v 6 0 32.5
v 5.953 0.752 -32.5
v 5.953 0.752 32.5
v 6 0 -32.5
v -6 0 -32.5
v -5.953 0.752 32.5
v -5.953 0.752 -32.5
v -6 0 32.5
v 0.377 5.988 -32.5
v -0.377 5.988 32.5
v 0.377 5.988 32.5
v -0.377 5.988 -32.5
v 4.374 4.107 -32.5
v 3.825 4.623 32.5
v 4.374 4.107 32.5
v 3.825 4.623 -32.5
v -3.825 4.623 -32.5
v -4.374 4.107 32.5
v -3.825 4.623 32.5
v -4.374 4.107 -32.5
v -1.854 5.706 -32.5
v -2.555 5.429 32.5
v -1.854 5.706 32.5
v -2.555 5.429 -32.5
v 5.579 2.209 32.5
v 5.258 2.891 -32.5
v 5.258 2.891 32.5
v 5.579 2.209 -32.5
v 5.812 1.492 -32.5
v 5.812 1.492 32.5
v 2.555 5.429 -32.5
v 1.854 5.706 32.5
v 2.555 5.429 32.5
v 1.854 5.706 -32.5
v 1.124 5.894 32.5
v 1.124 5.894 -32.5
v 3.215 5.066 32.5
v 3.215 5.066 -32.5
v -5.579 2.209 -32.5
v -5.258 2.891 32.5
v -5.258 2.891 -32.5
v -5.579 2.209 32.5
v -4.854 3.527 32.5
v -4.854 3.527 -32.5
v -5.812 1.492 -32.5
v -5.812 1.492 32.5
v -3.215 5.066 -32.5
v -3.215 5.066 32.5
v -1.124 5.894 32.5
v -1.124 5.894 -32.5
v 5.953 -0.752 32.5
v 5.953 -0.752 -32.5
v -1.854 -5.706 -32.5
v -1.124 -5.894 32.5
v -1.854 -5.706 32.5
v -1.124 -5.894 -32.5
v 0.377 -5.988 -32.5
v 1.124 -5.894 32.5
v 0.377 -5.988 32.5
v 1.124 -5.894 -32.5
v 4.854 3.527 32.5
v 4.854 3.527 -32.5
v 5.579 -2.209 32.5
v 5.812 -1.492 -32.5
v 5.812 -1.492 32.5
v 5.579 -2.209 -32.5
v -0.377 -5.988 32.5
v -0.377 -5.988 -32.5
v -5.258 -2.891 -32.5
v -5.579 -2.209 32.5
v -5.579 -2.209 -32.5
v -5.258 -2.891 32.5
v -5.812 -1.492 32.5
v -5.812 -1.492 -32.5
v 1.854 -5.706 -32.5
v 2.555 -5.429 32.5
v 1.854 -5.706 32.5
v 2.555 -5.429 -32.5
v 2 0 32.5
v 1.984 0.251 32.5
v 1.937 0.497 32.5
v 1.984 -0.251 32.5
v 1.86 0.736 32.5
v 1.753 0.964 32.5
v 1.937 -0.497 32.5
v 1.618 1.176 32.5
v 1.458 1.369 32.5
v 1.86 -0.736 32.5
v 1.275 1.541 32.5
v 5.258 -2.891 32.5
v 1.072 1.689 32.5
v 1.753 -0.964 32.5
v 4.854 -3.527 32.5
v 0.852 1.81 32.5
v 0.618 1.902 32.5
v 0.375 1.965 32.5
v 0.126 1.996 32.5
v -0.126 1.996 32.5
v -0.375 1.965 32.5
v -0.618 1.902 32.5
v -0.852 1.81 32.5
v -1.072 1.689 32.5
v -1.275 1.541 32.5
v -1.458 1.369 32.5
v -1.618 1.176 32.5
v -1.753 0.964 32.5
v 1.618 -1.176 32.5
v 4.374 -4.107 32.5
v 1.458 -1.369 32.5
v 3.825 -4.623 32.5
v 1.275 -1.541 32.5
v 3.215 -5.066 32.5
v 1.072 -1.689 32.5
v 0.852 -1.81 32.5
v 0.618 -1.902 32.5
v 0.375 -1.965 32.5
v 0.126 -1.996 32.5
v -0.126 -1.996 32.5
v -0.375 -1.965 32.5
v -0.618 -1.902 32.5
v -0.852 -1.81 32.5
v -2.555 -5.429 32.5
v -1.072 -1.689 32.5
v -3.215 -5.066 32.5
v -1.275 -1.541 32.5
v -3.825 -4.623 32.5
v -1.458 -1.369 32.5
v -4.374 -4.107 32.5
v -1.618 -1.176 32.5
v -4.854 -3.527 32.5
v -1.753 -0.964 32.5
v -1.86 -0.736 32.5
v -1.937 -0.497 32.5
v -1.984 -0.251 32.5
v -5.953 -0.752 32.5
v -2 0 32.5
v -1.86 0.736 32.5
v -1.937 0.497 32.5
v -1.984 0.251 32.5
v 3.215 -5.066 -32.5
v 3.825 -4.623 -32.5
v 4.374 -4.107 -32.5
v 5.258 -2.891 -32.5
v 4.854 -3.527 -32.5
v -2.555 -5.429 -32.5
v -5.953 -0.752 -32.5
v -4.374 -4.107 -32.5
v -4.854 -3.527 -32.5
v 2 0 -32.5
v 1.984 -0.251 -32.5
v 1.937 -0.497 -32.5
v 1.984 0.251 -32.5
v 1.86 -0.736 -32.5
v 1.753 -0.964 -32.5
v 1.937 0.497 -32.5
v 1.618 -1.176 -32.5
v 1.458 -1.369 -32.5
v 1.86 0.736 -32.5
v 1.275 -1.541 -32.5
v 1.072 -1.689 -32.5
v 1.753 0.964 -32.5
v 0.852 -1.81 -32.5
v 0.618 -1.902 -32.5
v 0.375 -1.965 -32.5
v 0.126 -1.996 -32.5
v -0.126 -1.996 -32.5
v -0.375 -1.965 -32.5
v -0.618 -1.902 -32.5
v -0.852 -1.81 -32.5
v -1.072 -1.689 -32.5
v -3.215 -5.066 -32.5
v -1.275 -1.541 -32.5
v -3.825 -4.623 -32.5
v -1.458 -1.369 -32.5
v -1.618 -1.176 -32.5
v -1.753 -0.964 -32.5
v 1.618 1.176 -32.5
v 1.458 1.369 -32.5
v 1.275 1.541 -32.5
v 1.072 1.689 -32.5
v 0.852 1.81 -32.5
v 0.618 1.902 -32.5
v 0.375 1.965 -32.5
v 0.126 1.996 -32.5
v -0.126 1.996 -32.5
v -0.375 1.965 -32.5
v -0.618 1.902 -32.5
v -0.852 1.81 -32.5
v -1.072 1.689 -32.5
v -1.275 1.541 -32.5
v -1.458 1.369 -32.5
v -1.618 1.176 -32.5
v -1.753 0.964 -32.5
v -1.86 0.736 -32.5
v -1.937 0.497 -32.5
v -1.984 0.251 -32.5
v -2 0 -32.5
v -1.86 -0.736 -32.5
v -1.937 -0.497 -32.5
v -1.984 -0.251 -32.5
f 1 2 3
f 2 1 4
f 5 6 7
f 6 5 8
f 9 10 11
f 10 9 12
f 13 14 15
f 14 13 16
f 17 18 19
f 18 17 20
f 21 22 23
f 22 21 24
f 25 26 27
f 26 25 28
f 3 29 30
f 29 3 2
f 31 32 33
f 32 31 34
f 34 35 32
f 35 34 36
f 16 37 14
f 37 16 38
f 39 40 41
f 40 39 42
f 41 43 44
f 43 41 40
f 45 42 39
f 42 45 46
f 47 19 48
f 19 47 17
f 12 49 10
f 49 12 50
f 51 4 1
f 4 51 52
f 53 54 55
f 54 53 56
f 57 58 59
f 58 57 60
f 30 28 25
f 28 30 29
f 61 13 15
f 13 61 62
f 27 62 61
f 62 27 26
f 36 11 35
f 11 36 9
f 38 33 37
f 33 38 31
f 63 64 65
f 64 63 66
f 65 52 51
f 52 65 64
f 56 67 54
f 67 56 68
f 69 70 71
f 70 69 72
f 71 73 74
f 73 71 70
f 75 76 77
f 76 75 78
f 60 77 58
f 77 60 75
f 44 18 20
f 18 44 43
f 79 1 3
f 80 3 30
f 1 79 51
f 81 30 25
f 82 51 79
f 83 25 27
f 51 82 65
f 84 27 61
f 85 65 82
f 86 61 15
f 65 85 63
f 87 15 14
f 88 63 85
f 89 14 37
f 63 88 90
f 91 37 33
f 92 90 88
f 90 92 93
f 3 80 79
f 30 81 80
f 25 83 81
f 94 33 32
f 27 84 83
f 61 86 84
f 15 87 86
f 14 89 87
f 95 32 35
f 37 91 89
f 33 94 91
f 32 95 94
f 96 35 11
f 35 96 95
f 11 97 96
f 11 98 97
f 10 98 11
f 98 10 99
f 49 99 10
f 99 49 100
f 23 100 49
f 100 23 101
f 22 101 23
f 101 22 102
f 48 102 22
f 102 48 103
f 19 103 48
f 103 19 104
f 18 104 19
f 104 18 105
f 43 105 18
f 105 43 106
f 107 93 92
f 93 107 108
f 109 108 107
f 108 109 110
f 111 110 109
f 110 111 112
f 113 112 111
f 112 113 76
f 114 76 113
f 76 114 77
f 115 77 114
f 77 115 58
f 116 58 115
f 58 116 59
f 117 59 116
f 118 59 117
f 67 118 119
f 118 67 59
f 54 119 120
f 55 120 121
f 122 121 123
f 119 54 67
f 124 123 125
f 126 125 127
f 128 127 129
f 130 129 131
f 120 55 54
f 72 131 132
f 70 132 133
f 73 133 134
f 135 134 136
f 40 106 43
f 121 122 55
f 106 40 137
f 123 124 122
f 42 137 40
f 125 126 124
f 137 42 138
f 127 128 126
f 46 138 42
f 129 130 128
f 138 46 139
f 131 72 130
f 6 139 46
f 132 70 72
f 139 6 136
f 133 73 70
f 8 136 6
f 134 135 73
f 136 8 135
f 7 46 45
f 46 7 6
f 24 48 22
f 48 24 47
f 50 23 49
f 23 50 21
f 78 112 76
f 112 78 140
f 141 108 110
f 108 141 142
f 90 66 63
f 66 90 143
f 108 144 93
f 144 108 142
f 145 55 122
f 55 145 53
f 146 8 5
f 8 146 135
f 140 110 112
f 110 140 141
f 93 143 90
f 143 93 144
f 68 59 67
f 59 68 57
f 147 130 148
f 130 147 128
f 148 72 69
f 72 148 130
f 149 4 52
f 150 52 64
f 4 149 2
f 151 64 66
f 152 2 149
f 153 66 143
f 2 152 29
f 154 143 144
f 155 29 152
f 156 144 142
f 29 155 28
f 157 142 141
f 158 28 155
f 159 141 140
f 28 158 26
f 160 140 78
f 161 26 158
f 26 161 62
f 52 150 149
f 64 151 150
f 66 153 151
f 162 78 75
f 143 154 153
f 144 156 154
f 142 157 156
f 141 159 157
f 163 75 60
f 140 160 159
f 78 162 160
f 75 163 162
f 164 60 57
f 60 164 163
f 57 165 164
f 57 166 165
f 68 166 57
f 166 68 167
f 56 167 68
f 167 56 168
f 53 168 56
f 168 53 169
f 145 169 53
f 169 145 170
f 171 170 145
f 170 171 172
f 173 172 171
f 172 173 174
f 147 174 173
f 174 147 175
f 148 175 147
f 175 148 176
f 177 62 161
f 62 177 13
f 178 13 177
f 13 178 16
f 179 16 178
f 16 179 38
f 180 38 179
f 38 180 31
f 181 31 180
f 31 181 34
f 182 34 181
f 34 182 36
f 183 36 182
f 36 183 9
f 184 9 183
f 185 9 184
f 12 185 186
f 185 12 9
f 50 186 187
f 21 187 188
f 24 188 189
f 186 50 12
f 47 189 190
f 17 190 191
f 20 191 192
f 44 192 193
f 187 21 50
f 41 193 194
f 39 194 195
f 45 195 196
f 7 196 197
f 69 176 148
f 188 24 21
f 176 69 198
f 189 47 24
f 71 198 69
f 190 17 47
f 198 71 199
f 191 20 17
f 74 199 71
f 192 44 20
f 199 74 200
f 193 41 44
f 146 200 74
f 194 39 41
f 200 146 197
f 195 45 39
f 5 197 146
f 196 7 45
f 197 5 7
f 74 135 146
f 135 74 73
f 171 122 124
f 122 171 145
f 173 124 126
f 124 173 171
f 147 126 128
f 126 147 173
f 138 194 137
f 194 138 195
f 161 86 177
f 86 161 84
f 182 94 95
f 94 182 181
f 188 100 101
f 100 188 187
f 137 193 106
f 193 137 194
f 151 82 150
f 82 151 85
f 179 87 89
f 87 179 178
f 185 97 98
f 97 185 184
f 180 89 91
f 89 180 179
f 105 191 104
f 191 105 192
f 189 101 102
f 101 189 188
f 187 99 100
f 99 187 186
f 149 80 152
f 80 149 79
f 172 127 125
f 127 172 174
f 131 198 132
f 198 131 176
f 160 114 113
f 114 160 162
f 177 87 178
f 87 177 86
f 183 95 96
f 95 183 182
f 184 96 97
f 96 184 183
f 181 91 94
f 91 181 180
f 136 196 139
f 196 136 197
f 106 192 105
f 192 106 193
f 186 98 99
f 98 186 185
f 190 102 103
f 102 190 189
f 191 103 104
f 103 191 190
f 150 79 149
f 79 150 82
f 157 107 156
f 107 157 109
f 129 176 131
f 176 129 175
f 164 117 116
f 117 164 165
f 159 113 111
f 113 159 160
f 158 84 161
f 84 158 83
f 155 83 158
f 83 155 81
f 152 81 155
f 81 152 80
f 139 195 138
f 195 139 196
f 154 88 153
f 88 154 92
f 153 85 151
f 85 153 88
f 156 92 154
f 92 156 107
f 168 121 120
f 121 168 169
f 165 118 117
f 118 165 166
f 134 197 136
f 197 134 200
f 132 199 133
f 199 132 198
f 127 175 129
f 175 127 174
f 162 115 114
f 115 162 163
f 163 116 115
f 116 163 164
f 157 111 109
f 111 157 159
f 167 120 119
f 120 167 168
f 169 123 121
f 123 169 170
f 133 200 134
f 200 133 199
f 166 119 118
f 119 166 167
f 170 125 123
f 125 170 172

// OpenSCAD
$fn = 50;


difference() {
	union() {
		translate(v = [0, 0, -32.5000000000]) {
			cylinder(h = 65, r = 6.0000000000);
		}
	}
	union() {
		translate(v = [0, 0, -100.0000000000]) {
			cylinder(h = 200, r = 2.0000000000);
		}
	}
}
